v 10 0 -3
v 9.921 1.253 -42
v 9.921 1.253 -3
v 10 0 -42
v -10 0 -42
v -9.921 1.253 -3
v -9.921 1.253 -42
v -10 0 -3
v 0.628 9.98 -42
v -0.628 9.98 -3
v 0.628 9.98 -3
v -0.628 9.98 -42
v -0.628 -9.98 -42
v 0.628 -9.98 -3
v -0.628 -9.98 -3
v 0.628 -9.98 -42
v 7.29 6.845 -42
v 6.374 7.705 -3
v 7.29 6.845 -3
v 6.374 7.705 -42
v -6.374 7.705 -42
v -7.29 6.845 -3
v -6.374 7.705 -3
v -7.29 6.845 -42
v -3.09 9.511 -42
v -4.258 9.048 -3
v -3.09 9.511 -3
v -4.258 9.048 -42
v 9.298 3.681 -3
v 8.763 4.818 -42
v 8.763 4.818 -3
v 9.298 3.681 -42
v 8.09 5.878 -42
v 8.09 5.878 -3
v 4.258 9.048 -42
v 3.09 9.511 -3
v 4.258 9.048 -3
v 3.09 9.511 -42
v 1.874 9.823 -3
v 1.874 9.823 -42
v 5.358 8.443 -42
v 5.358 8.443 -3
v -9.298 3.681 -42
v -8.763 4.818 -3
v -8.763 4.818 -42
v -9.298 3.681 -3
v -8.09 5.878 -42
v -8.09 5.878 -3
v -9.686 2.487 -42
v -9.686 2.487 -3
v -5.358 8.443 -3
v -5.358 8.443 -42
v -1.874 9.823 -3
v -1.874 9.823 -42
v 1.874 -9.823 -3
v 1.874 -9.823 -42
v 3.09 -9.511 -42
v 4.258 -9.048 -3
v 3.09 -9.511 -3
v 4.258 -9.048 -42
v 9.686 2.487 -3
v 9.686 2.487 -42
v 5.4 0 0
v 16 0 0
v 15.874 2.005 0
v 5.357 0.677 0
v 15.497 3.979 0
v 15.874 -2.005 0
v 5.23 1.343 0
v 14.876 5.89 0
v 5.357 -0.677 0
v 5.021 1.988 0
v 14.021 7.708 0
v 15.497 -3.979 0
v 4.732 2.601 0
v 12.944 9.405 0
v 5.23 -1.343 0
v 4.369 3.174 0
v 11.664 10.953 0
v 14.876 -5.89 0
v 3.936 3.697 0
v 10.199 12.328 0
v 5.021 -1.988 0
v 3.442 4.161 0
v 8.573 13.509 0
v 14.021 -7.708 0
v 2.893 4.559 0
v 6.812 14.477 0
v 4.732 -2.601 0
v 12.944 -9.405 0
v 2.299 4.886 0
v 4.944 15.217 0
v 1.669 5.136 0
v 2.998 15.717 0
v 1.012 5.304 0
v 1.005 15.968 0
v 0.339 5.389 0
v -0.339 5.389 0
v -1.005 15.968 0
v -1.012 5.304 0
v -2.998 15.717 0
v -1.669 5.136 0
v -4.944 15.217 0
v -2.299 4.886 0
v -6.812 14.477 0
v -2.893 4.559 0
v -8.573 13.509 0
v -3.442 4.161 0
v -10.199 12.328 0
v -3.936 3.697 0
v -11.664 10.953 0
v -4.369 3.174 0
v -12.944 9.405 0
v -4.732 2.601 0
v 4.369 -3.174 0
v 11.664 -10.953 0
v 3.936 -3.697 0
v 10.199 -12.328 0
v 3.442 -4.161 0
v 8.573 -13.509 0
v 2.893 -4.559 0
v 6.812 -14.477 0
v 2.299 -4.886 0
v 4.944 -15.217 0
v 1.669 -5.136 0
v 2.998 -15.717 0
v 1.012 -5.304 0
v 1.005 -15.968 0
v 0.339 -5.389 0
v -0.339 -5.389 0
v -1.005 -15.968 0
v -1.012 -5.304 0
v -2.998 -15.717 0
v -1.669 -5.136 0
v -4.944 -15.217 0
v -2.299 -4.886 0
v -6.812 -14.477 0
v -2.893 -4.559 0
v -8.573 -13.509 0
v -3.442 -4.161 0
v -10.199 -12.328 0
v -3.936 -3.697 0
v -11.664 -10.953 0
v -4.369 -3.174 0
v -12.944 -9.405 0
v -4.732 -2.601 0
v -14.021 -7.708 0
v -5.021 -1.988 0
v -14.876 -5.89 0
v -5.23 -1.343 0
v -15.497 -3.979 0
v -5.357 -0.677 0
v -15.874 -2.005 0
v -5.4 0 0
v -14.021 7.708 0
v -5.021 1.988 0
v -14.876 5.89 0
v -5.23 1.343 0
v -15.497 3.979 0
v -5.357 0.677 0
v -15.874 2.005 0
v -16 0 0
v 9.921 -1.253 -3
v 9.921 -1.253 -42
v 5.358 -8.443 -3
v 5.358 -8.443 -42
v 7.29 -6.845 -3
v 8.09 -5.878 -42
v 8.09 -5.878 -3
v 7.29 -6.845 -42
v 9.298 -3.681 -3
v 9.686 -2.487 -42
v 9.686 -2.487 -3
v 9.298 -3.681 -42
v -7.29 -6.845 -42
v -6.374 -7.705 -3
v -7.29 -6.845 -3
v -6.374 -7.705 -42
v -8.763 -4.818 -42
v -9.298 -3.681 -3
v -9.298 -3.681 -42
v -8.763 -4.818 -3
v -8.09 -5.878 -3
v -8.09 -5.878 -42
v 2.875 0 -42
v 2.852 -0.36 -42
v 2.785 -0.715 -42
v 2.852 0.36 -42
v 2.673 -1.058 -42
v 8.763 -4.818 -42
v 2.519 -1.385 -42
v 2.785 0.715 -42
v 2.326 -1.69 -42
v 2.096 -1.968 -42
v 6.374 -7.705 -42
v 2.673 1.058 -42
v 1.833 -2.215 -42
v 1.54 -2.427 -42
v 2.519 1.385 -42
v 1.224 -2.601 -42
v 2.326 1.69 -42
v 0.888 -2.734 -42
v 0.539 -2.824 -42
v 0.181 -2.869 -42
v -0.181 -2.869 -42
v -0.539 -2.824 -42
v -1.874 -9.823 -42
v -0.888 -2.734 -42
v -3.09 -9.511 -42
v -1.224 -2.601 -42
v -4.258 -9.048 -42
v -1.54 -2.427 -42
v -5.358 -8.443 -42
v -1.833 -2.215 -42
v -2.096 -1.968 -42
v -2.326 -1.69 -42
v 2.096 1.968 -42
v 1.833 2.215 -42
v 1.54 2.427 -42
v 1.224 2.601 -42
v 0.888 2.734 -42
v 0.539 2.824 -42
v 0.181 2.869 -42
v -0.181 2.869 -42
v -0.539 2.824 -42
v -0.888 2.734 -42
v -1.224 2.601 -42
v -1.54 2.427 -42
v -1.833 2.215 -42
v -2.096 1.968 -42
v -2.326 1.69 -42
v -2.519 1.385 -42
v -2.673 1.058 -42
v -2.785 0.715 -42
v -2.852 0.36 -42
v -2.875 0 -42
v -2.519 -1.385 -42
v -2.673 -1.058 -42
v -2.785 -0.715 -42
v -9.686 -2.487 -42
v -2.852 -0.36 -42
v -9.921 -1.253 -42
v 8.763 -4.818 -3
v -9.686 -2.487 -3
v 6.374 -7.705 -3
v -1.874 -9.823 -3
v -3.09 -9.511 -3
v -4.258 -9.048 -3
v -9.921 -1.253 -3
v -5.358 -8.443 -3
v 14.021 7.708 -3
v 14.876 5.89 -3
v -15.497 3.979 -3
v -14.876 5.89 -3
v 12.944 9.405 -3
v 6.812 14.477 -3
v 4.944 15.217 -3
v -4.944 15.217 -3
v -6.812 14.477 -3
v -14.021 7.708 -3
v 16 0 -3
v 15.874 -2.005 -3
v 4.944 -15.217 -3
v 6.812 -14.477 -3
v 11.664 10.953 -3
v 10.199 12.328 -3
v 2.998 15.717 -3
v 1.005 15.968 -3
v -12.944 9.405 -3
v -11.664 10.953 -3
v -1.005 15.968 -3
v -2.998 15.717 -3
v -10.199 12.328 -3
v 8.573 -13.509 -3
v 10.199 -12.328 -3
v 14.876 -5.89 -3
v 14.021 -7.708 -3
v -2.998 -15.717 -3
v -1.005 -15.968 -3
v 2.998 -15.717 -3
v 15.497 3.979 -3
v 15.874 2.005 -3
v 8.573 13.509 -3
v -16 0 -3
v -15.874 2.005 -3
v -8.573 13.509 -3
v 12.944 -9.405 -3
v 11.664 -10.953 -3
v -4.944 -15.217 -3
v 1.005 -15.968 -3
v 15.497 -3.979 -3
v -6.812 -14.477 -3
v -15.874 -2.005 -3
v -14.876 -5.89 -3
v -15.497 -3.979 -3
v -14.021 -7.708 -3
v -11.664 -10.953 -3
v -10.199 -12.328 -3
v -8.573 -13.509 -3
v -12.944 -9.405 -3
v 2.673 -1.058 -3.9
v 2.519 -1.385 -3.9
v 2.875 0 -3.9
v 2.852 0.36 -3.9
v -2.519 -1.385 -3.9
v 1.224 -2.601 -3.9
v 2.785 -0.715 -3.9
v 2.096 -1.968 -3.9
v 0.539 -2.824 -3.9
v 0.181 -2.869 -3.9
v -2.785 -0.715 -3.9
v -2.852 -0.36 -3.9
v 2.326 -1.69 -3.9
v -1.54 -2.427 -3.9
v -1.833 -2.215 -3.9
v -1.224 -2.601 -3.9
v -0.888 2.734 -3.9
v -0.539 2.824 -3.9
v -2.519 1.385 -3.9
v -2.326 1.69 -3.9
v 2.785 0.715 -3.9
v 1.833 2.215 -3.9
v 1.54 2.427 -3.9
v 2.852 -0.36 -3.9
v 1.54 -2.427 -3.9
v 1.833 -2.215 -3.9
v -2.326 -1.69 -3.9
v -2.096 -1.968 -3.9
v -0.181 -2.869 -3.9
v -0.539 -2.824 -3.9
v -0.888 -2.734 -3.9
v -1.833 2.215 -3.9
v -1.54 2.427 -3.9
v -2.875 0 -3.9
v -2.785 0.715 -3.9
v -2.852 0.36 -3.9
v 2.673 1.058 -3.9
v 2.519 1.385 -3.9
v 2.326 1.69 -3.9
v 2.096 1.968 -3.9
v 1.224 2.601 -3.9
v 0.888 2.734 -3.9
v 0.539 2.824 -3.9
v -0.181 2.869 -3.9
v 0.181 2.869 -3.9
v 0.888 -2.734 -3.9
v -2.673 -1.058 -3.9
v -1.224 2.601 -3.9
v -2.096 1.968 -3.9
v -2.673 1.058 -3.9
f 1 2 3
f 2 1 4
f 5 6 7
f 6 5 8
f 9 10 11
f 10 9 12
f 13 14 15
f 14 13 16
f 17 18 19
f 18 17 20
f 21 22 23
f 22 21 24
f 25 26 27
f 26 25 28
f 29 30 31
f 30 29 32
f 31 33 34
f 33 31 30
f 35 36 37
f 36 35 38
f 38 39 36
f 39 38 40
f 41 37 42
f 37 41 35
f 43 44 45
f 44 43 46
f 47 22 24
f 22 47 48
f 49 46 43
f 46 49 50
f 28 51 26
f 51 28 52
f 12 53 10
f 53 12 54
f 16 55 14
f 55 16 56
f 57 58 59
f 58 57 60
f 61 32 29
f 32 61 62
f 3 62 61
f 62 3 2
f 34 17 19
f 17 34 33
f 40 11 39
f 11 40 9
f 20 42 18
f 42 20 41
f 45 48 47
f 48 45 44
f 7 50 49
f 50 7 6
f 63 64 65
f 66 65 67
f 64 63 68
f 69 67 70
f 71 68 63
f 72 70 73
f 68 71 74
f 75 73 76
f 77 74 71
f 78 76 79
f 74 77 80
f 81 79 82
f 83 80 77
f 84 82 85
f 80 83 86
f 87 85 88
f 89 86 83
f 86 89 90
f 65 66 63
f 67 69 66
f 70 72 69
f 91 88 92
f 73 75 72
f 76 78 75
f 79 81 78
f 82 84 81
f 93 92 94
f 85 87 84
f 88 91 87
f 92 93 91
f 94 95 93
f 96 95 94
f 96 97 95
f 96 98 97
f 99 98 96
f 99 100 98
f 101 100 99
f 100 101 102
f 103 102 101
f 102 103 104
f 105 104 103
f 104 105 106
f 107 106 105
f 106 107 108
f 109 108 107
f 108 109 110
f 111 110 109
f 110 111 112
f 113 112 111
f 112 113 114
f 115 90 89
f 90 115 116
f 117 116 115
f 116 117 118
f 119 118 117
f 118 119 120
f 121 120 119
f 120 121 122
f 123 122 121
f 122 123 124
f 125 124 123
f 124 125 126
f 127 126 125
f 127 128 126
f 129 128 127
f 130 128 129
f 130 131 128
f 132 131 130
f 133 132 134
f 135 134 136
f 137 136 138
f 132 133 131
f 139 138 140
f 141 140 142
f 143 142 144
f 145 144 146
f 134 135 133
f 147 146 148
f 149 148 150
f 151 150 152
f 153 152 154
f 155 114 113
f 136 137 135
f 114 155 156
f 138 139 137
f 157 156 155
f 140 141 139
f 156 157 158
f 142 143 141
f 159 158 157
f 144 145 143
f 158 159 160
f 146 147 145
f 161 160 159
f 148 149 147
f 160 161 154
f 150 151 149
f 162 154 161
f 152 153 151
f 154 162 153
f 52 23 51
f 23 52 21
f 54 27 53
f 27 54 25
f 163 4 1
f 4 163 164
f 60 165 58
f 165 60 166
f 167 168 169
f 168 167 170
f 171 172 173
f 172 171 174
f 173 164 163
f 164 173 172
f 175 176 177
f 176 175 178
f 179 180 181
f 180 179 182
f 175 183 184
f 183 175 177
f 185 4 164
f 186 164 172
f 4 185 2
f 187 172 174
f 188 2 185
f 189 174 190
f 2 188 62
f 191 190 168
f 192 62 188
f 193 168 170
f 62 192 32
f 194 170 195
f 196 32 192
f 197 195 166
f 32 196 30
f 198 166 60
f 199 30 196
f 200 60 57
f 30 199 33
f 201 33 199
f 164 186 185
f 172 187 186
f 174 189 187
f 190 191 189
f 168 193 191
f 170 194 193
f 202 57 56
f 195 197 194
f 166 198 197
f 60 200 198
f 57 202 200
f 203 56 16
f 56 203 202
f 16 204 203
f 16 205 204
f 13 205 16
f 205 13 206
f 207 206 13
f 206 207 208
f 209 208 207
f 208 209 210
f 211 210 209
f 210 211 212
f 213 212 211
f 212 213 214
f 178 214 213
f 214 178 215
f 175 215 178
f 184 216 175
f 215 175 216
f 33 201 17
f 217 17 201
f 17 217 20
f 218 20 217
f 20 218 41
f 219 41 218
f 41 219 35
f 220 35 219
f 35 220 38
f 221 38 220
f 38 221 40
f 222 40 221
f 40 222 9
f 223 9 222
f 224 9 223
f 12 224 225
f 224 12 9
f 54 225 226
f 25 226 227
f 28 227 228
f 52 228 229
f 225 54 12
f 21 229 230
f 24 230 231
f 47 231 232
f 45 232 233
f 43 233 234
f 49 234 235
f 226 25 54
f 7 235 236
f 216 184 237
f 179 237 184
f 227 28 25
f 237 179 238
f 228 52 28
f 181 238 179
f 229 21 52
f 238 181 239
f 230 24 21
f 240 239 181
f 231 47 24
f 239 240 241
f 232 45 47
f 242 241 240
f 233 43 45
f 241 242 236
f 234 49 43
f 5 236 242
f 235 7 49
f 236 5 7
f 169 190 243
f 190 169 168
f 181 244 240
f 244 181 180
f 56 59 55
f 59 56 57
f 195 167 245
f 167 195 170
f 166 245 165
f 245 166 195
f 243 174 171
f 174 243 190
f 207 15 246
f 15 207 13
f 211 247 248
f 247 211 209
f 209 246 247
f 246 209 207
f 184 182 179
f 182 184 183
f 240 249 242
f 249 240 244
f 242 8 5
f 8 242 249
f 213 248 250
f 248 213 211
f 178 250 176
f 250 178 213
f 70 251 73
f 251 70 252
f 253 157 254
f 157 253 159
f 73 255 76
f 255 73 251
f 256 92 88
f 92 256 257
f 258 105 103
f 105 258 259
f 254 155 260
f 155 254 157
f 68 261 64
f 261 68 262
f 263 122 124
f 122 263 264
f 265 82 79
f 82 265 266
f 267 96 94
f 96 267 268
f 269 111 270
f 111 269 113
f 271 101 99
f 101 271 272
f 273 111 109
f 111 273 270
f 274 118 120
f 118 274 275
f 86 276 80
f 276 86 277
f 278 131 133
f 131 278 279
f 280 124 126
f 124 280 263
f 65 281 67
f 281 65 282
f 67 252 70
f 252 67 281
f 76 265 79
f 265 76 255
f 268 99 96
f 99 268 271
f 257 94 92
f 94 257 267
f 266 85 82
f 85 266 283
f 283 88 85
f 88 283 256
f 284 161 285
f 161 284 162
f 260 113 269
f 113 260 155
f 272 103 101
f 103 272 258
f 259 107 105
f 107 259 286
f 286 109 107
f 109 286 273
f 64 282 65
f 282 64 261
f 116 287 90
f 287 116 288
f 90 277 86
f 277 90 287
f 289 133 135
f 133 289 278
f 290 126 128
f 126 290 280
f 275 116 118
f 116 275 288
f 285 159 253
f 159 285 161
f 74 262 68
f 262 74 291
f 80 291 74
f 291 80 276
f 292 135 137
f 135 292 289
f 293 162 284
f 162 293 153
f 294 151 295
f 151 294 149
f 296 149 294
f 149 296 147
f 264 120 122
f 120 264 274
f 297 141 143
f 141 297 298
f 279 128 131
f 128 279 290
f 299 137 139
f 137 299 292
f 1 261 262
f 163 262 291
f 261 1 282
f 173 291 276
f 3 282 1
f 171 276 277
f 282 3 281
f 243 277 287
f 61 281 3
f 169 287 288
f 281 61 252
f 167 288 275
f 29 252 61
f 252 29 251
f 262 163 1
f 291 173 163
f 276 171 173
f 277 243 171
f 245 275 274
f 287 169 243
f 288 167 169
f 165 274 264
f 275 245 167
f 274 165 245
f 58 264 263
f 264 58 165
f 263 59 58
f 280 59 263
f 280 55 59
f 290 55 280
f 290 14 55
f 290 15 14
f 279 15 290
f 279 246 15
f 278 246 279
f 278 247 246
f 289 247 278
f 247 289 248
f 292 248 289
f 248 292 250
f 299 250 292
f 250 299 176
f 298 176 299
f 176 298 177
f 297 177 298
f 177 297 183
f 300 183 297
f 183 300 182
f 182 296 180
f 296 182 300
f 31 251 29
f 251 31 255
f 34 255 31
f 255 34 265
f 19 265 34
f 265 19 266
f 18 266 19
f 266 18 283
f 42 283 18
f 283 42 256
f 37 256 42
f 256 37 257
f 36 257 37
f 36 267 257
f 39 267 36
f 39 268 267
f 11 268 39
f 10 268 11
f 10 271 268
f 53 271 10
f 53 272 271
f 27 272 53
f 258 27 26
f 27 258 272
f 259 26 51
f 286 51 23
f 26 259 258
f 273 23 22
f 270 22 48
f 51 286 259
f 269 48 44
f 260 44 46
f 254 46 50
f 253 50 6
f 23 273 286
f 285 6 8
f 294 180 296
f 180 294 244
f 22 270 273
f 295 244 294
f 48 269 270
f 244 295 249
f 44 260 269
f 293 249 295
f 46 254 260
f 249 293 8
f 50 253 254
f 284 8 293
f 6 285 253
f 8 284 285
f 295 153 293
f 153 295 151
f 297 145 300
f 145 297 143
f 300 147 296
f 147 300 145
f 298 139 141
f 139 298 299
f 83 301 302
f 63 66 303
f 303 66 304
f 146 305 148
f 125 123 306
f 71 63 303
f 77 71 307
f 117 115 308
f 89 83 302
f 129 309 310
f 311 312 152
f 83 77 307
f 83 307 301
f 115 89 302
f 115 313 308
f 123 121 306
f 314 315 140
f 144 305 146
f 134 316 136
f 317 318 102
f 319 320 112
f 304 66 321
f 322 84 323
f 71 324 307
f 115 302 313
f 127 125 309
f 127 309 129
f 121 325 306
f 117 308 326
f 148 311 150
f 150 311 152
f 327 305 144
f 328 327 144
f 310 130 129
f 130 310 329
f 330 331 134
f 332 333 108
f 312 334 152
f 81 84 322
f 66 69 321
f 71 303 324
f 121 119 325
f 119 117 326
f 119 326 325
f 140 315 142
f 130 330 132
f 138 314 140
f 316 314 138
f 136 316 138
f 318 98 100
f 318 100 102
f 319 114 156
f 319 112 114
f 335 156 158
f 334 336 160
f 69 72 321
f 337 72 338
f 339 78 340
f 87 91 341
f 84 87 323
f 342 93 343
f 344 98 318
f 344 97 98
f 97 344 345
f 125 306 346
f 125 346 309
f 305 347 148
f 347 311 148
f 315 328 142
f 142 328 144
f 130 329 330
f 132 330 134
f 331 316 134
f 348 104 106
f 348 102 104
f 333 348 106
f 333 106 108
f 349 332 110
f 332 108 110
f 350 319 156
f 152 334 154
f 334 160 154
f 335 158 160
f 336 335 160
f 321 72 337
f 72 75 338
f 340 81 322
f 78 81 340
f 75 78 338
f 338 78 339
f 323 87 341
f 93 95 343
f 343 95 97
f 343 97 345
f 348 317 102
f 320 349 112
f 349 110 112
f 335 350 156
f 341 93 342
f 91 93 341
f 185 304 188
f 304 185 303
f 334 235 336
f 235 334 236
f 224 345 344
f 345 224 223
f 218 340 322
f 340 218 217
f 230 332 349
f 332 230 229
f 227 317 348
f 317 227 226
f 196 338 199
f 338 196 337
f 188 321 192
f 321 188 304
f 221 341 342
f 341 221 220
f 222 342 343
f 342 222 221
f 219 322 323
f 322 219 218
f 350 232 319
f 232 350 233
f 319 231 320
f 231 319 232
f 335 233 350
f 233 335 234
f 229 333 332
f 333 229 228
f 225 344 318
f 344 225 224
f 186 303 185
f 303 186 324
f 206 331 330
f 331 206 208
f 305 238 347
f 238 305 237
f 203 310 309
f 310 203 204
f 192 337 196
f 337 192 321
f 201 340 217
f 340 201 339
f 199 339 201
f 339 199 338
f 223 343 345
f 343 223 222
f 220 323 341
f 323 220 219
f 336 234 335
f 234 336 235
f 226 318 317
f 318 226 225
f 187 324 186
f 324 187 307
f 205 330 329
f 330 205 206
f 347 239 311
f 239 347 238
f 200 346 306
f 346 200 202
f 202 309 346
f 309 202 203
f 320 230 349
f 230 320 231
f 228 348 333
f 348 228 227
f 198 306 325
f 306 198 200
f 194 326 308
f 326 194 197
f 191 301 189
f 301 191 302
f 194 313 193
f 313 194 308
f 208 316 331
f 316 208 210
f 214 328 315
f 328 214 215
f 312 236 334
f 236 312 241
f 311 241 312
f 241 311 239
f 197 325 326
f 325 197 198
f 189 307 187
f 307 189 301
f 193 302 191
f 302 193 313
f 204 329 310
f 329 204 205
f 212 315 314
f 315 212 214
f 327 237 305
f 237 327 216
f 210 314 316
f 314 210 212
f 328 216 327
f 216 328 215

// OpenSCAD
$fn = 50;


difference() {
	union() {
		translate(v = [0, 0, -42.0000000000]) {
			cylinder(h = 42, r = 10.0000000000);
		}
		translate(v = [0, 0, -3.0000000000]) {
			cylinder(h = 3, r = 16.0000000000);
		}
	}
	union() {
		translate(v = [0, 0, 0]) {
			rotate(a = [0, 0, 0]) {
				difference() {
					union() {
						#translate(v = [0, 0, -42.0000000000]) {
							cylinder(h = 42, r = 2.6000000000);
						}
						#translate(v = [0, 0, -3.9000000000]) {
							cylinder(h = 3.9000000000, r1 = 2.8750000000, r2 = 5.4000000000);
						}
						#translate(v = [0, 0, -42.0000000000]) {
							cylinder(h = 42, r = 2.8750000000);
						}
						#translate(v = [0, 0, -42.0000000000]) {
							cylinder(h = 42, r = 2.6000000000);
						}
					}
					union();
				}
			}
		}
	}
}
